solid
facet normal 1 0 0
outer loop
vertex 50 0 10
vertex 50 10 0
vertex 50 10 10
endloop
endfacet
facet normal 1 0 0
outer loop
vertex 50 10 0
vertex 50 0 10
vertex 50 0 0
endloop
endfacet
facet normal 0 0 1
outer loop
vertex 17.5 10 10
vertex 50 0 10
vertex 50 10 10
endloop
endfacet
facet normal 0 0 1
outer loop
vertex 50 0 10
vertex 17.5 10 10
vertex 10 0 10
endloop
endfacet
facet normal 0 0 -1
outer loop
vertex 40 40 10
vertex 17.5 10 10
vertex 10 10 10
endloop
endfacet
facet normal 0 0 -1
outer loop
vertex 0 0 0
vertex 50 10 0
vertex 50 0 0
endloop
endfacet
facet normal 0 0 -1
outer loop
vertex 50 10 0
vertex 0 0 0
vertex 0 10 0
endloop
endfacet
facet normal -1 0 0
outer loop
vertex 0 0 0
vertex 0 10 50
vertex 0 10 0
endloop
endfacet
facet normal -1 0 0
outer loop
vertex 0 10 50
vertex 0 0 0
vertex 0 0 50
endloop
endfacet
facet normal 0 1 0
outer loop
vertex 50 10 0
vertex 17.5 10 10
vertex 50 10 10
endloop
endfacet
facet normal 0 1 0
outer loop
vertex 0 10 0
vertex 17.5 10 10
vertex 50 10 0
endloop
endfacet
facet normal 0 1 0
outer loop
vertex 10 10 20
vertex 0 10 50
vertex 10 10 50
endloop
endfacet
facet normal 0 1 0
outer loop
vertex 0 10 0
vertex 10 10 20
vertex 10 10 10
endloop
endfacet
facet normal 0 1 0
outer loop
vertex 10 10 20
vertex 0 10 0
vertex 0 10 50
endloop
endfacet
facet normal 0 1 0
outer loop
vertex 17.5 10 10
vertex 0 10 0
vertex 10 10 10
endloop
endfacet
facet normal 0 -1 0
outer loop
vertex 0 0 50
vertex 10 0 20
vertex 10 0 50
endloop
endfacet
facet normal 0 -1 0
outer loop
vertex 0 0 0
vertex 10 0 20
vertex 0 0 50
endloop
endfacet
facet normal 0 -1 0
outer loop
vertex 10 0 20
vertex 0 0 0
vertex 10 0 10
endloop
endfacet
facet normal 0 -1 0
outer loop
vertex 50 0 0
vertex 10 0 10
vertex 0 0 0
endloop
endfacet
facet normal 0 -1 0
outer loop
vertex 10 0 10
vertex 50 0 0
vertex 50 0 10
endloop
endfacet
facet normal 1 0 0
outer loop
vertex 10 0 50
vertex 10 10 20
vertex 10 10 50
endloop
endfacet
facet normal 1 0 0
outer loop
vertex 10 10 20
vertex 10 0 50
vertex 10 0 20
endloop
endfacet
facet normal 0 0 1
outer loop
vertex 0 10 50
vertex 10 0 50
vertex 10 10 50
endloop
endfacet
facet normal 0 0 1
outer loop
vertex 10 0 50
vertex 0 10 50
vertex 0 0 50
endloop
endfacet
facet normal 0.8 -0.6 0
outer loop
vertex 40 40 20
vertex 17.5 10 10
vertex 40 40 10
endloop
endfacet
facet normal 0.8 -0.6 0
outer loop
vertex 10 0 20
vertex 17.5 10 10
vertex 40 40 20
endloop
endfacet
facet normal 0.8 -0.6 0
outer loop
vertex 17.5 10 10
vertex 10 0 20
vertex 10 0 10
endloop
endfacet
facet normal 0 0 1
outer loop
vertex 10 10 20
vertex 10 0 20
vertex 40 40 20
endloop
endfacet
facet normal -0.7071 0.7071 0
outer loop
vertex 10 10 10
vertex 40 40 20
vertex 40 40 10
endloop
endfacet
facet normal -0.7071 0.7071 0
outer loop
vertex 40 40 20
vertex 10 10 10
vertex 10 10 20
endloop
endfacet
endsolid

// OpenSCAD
// Parameters
thickness = 10;  // Increased thickness for stronger arms
long_arm_length = 50;
short_arm_length = 30;
height = 40;

// Module to create the L-bracket
module L_bracket() {
    // Base arm
    cube([long_arm_length, thickness, thickness]);

    // Vertical arm
    translate([0, 0, thickness])
        cube([thickness, thickness, height]);

    // Reinforced diagonal support
    translate([0, 0, thickness])
        linear_extrude(height=thickness)
        polygon(points=[[0, 0], [thickness, 0], [height, height]]);
}

// Render the L-bracket
L_bracket();
